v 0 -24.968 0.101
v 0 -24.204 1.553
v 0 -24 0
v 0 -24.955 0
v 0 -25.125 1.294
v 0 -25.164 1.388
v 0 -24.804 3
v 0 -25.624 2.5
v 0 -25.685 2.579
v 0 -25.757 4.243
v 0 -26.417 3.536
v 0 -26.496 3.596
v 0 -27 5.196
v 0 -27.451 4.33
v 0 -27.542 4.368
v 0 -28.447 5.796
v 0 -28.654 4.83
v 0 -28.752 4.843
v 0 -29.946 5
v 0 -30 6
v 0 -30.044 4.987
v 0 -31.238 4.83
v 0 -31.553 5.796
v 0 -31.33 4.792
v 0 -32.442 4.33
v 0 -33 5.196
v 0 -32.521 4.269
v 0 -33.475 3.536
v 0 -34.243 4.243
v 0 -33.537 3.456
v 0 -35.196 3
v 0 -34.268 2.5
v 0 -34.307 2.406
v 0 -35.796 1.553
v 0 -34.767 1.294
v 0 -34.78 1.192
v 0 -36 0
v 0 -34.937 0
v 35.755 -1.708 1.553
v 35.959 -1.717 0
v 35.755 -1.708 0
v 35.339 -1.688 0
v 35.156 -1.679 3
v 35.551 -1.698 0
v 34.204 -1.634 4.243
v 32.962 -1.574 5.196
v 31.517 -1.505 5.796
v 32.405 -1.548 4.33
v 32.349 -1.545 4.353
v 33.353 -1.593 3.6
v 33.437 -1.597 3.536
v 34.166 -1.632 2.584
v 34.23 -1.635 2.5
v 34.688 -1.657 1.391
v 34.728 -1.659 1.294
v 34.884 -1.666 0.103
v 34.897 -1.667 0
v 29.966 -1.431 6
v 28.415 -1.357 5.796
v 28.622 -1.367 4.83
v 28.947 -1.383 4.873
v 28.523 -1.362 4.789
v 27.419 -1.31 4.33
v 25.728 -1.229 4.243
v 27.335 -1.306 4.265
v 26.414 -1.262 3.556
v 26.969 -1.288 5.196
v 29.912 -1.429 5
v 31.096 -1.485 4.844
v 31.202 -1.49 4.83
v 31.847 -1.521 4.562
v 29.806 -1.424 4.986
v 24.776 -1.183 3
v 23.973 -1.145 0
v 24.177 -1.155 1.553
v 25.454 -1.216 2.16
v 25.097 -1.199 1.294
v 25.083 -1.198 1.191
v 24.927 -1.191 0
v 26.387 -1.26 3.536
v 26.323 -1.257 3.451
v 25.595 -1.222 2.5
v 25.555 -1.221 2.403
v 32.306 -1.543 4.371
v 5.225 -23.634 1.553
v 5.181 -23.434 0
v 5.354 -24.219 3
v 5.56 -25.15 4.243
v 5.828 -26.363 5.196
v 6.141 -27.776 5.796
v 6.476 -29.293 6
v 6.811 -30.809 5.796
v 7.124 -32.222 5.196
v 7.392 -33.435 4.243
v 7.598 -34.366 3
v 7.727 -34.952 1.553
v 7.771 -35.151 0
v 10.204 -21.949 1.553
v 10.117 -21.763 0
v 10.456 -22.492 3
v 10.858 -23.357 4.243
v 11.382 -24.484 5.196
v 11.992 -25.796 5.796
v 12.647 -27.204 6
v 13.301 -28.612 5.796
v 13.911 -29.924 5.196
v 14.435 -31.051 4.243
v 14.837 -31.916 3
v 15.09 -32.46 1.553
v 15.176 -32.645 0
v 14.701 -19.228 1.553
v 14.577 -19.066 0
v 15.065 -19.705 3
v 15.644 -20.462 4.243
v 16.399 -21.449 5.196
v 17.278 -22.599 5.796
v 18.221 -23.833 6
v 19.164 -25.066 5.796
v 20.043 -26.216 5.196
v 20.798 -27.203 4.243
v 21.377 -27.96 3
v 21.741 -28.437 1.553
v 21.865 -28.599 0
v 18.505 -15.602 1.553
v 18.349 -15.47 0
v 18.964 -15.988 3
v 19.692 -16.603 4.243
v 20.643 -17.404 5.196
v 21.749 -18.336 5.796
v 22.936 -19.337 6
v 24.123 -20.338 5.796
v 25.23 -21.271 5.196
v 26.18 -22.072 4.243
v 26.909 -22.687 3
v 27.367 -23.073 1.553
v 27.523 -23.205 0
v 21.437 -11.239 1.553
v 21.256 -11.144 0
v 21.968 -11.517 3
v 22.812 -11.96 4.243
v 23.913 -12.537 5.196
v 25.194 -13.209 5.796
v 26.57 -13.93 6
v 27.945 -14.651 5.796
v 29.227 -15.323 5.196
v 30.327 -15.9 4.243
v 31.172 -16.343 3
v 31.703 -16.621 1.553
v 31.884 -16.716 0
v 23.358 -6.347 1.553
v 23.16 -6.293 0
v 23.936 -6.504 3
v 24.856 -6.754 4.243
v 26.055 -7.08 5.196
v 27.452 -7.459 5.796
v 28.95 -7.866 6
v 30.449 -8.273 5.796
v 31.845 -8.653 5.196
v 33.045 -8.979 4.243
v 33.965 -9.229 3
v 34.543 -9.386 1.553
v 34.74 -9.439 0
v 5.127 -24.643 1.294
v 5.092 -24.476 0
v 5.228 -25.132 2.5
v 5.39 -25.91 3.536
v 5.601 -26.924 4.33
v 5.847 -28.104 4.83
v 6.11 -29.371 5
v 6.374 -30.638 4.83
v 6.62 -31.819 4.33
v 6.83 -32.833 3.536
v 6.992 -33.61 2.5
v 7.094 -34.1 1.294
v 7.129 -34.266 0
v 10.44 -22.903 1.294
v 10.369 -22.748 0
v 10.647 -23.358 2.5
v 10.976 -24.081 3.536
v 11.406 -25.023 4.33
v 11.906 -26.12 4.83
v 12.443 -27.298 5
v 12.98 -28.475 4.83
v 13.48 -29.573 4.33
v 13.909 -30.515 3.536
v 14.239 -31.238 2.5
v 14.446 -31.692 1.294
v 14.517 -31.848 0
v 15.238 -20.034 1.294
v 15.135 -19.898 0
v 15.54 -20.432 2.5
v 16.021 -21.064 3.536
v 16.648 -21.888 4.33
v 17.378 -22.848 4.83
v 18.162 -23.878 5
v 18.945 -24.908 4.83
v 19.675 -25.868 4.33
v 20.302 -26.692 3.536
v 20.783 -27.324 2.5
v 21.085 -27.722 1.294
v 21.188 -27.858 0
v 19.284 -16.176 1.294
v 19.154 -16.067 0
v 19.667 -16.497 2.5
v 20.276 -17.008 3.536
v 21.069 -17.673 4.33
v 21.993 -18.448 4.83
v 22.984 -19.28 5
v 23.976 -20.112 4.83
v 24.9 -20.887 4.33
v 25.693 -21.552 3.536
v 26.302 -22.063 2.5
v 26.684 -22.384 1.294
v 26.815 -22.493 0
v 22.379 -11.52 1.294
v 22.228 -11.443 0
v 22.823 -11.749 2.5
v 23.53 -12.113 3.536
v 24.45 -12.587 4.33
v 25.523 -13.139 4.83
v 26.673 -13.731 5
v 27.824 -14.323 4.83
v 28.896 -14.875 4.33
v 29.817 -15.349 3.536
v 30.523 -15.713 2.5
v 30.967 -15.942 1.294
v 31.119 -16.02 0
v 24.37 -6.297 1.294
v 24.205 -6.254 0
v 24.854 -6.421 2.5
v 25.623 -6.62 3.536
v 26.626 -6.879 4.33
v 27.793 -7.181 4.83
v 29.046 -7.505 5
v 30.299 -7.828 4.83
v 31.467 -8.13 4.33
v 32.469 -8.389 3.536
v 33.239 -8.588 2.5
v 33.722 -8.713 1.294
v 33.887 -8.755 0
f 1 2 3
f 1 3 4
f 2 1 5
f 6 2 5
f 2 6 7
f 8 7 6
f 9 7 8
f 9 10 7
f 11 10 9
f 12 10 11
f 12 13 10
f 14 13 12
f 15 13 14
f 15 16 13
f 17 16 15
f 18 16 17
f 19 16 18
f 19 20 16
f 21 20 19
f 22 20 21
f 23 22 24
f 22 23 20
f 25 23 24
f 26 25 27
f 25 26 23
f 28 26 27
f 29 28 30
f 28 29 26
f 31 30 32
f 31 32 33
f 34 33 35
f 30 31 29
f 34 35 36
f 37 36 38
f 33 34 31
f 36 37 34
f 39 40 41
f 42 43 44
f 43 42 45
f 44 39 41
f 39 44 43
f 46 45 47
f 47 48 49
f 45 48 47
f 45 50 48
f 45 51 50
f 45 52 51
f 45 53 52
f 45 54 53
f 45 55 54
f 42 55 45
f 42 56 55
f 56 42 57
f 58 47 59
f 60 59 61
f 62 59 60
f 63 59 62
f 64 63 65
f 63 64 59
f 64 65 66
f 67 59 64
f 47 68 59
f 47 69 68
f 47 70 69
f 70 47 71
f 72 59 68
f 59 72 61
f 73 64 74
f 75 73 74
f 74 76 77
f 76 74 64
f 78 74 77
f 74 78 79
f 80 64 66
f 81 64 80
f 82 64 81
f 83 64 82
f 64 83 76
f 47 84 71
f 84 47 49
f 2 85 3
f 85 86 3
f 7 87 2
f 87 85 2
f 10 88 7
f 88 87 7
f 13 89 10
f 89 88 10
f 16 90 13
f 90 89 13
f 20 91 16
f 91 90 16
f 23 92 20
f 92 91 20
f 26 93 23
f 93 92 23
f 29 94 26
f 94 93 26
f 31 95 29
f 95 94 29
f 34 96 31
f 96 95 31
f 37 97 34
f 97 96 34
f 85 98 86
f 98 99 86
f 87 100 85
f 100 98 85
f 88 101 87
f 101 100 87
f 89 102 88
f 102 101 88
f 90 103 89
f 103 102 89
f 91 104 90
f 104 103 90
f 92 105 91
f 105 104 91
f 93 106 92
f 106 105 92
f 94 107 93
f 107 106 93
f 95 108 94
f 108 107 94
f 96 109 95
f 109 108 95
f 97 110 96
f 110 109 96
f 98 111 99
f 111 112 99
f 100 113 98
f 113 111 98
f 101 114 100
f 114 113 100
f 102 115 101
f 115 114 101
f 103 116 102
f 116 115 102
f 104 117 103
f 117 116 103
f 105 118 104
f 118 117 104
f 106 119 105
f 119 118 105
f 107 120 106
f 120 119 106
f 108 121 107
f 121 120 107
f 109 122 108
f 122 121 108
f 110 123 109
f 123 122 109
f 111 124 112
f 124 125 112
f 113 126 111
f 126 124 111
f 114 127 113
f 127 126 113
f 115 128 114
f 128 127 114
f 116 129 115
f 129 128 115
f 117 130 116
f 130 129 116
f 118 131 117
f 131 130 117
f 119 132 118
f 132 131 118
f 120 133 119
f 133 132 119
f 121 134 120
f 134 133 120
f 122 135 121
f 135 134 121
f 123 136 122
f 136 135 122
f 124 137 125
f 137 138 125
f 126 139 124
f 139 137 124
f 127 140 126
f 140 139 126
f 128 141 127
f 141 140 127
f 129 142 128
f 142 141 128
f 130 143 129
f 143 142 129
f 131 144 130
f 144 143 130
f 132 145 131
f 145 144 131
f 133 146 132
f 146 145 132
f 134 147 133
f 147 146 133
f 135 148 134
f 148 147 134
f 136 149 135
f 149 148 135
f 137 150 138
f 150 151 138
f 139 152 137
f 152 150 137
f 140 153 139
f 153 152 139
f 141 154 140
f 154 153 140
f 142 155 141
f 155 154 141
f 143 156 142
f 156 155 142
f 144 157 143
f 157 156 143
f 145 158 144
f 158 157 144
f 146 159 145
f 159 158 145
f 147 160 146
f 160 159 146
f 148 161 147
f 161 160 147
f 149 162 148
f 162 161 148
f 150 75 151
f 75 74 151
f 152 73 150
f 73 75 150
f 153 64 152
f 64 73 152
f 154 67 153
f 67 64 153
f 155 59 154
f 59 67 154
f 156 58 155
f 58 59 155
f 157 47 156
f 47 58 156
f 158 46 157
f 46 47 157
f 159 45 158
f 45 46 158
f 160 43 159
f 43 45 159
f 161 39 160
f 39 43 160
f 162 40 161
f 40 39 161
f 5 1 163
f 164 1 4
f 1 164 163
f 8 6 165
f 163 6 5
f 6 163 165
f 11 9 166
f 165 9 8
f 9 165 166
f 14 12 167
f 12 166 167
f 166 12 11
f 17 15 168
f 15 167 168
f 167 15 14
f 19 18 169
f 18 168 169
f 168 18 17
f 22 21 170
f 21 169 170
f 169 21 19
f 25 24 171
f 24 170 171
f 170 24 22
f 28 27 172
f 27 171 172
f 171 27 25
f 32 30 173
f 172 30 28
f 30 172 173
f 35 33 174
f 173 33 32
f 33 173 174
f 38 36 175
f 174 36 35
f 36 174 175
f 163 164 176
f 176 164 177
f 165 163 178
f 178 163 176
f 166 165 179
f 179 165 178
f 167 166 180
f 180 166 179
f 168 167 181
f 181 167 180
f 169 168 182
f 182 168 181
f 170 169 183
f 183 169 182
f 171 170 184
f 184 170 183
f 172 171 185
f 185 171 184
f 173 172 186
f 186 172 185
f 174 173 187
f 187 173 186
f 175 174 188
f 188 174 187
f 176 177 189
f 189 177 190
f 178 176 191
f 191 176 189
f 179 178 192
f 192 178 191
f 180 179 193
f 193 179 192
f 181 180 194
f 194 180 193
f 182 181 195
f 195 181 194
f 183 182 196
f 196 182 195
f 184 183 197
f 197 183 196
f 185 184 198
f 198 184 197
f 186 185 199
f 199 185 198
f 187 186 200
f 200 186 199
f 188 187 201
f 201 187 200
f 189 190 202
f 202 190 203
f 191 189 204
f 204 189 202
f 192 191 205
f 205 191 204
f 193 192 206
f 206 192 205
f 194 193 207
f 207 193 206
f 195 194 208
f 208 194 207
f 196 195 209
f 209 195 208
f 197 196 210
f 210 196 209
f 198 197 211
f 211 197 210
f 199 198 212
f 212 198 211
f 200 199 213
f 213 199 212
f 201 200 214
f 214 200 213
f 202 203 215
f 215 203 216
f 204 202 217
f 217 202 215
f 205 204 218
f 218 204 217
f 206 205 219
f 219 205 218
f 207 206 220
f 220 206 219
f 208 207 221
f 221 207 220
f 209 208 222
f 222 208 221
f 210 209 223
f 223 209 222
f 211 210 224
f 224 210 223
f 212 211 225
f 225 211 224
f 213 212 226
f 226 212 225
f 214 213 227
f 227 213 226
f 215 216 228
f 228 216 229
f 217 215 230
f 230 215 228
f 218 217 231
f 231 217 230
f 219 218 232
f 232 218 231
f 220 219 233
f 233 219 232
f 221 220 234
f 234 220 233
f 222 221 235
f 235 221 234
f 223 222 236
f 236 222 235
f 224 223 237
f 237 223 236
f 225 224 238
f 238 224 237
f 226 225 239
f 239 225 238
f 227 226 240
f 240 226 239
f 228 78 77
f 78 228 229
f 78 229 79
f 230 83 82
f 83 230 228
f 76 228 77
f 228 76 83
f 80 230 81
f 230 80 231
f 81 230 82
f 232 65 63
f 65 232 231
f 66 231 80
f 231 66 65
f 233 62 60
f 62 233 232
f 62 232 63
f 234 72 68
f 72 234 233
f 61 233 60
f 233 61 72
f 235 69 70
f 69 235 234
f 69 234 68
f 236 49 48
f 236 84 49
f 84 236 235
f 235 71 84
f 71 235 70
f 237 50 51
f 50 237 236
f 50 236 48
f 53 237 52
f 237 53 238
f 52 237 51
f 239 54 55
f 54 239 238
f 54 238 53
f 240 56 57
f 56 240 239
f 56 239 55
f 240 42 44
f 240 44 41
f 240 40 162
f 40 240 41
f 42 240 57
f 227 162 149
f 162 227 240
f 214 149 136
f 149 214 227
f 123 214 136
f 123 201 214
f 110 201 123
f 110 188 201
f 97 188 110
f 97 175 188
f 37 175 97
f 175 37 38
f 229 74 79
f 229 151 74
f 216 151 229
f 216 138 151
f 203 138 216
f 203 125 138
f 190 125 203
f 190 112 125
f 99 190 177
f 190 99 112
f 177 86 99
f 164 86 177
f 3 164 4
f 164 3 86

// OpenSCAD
// file: ../build_environments.scad
// build_environments.scad: modules to build level sections
//

module pool(diameter=10.0, wall_height=2.0, step_width=3.0, connections=[])
{
    difference() {
        union() {
        difference() {
            cylinder(h=0.5,r1=diameter+step_width,r2=diameter+step_width,$fn=48);
            translate([0,0,-0.1])
                cylinder(h=0.7,r1=diameter,r2=diameter,$fn=48);
        }
        difference() {
            cylinder(h=wall_height,r1=diameter+step_width+1.0,r2=diameter+step_width+1.0,$fn=48);
            translate([0,0,-0.1])
                cylinder(h=wall_height+0.2,r1=diameter+step_width,r2=diameter+step_width,$fn=48);
        }
        }
    
        for (c = connections)
        {
            rotate([0,90,0]) {
                angle = atan2(c[1],c[0]);
                rotate([-angle,0,0]) {
                    cylinder(h=diameter+5.0,r1=c[2],r2=c[2],$fn=48);
                }
            }
        }
    }
}

module straight(length=10.0, width=2.0, dy1=0.0, dy2=0.0, dz=0.0)
{
    dims = [0, 0, 0, 0, 0, (dz/length)];
    matrix = [
        [ 1, dims[0], dims[1], 0 ],
        [ dims[2], 1, dims[4], 0 ],
        [ dims[5], dims[3], 1, 0 ],
        [ 0, 0, 0, 1 ]
    ];
    multmatrix(matrix)
    difference() {
        translate([dy1,0,0])
        union() {
            rotate([0,90,0]) {
                difference() {
                    cylinder(h=(length-dy1-dy2),r1=width+1.0,r2=width+1.0,$fn=24);
                    translate([0,0,-0.1])
                        cylinder(h=(length-dy1-dy2+0.2),r1=width,r2=width,$fn=24);
                }
                difference() {
                    cylinder(h=1.0,r1=width+2.0,r2=width+2.0,$fn=24);
                    translate([0,0,-0.1])
                        cylinder(h=1.2,r1=width,r2=width,$fn=24);
                }
                translate([0,0,(length-dy1-dy2)-1.0]) {
                    difference() {
                        cylinder(h=1.0,r1=width+2.0,r2=width+2.0,$fn=24);
                        translate([0,0,-0.1])
                            cylinder(h=1.2,r1=width,r2=width,$fn=24);
                    }
                }
            }
        }
        translate([0,0,-(2*width+4.0)/2])
            cube([3*length,3*length,2*width+4.0],center=true);
    }
}

module curve(p0=[0,0], center=[0,0], dir=1, angle=0.0, width=2.0)
{
    radius = sqrt((p0[0]-center[0])*(p0[0]-center[0]) + (p0[1]-center[1])*(p0[1]-center[1]));
    if (dir == 0) {
        difference() {
            rotate([0,0,-90])
            difference() {
                rotate_extrude(angle = angle, convexity = 10, $fn=32)
                    translate([radius, 0, 0])
                        circle(r = width+1.0,$fn=24);
                rotate([0,0,-1.0])
                    rotate_extrude(angle = angle+2.0, convexity = 10, $fn=32)
                        translate([radius, 0, 0])
                            circle(r = width,$fn=24);
            }
            translate([0,0,-(2*width+4.0)/2])
                cube([5*radius,5*radius,2*width+4.0],center=true);
        }
    }
    else {
        difference() {
            rotate([0,0,90])
            difference() {
                rotate_extrude(angle = -angle, convexity = 10, $fn=32)
                    translate([radius, 0, 0])
                        circle(r = width+1.0,$fn=24);
                rotate([0,0,1.0])
                    rotate_extrude(angle = -angle-2.0, convexity = 10, $fn=32)
                        translate([radius, 0, 0])
                            circle(r = width,$fn=24);
            }
            translate([0,0,-(2*width+4.0)/2])
                cube([5*radius,5*radius,2*width+4.0],center=true);
        }
    }

}

// test pool
//pool(diameter=12.0000, wall_height=3.0000, step_width=3.0000, connections=[[0.0000,-26.0000,2.0000], [23.6074,0.0000,2.0000]]);

// test straight, slope
//straight(length=26.0000, width=2.0000, dy1=11.8322, dy2=6.7082, dz=0.0000);
//straight(length=29.1549, width=12.0000, dy1=0.0000, dy2=0.0000, dz=-15.0000);

// test curve
//curve(p0=[23.6074, 0.0000], center=[23.6074, 5.0000], dir=0, angle=60.1011, width=2.0000);
//curve(p0=[33.6426, 12.4219], center=[37.9771, 9.9295], dir=1, angle=120.4627, width=2.0000);
// main file
use <../build_environments.scad>;
curve(p0=[53.2080, -148.1660], center=[82.9604, -144.3196], dir=0, angle=87.2655, width=5.0000);
